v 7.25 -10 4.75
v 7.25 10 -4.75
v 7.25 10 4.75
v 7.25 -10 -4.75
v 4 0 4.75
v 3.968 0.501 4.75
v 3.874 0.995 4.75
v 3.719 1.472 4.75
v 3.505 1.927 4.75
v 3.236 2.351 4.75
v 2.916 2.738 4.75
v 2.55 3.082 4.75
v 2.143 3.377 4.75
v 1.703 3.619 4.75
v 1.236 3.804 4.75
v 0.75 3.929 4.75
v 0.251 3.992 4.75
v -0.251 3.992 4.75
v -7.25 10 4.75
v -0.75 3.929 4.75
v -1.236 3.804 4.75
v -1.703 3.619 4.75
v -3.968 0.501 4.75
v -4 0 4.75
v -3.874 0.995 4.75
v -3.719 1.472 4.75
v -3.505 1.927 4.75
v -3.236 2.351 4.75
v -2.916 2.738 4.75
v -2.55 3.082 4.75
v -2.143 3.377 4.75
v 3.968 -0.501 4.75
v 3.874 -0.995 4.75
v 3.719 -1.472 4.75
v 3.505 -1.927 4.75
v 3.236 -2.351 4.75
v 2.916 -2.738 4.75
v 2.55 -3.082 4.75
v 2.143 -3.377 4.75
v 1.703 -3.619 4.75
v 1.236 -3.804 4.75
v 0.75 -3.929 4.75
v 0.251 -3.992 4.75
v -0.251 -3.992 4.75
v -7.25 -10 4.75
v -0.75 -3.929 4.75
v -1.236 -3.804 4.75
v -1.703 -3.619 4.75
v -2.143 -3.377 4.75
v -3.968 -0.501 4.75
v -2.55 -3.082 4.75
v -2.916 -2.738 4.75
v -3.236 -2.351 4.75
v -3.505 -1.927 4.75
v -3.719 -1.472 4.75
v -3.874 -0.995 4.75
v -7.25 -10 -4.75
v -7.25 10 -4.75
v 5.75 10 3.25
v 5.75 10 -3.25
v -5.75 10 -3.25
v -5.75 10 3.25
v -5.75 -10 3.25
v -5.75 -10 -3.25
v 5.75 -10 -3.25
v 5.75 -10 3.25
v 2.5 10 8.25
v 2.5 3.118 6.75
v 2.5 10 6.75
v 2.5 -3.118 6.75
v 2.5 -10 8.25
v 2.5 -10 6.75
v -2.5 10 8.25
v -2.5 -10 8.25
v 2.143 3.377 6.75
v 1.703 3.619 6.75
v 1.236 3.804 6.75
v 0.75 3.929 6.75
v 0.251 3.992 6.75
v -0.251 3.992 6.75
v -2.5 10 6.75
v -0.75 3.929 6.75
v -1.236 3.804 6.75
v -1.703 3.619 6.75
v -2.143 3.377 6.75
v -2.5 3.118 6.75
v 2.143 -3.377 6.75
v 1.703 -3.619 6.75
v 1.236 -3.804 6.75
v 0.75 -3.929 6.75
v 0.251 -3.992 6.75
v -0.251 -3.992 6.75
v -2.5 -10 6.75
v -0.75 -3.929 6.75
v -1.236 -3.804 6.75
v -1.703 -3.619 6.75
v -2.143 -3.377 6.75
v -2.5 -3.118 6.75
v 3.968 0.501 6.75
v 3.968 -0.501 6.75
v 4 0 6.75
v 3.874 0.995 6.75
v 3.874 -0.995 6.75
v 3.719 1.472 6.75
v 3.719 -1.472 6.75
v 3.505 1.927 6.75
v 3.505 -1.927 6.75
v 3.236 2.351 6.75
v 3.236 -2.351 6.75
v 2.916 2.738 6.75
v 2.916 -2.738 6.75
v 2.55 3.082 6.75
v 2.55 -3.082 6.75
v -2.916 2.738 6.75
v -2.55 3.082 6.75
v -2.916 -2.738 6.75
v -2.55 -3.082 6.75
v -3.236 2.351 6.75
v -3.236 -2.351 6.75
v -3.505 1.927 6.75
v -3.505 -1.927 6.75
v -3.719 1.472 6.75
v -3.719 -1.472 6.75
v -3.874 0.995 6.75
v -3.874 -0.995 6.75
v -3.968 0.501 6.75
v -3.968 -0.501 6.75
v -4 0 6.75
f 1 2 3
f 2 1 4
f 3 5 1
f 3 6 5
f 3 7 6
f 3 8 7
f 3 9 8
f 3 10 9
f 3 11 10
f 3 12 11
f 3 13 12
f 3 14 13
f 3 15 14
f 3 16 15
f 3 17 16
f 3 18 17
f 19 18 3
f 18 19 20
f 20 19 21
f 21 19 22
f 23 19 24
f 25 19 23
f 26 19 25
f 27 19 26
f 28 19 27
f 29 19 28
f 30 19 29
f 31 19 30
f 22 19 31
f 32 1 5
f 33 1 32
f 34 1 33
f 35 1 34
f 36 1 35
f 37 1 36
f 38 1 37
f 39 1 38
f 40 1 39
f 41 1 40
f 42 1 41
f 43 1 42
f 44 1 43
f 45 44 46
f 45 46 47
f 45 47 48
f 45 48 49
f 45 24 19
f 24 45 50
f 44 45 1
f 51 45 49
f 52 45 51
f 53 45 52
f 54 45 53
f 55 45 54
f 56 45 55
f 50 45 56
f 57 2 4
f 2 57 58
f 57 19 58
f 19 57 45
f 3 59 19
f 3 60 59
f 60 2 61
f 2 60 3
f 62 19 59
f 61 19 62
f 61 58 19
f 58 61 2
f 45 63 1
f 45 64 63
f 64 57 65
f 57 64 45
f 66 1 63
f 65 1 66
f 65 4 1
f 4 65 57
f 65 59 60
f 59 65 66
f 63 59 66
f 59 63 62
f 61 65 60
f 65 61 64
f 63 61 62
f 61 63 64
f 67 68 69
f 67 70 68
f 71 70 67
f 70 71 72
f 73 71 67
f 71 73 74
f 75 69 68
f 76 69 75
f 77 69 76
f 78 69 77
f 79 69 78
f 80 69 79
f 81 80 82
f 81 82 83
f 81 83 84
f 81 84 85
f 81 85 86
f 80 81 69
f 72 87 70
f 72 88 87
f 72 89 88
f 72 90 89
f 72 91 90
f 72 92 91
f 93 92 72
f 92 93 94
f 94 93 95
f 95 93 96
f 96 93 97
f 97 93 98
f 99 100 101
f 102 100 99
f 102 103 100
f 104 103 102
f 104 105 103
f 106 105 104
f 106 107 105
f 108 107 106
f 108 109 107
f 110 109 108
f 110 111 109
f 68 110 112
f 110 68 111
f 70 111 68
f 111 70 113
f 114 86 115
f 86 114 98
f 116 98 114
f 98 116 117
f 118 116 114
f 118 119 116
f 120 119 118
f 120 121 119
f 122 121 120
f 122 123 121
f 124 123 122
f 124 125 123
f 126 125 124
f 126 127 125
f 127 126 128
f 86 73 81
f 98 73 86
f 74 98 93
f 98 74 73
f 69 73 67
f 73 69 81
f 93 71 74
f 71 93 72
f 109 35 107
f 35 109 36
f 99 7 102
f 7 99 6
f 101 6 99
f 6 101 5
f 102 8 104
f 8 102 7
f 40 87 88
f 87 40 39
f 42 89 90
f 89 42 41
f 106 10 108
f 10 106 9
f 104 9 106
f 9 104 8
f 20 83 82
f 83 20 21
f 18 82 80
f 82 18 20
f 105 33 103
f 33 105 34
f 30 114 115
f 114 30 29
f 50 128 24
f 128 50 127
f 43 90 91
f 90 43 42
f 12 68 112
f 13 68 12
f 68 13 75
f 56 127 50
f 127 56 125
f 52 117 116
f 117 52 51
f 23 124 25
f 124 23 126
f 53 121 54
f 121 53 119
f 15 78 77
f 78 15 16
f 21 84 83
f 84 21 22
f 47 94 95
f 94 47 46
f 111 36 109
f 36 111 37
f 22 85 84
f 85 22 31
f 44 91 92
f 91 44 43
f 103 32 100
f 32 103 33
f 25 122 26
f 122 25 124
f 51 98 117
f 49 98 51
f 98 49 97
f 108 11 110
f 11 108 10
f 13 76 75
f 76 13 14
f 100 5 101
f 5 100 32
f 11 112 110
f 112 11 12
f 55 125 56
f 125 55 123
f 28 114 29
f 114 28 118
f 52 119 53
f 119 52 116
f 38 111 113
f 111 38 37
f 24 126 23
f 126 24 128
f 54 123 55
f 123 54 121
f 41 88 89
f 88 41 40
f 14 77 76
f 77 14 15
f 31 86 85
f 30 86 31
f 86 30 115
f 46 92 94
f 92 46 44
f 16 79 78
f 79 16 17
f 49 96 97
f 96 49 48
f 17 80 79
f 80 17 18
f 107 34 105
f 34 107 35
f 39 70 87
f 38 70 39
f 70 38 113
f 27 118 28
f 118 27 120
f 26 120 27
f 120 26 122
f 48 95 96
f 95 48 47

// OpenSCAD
union () {
  difference () {
    cube ([14.5, 20, 9.5], center=true);
    cube ([11.5, 1000, 6.5], center=true);
  }
  union () {
    translate ([0, 0, 7.5]) {
      cube ([5, 20, 1.5], center=true);
    }
    translate ([0, 0, 5.75]) {
      cylinder ($fn=50, h=2, r=4, center=true);
    }
  }
}
